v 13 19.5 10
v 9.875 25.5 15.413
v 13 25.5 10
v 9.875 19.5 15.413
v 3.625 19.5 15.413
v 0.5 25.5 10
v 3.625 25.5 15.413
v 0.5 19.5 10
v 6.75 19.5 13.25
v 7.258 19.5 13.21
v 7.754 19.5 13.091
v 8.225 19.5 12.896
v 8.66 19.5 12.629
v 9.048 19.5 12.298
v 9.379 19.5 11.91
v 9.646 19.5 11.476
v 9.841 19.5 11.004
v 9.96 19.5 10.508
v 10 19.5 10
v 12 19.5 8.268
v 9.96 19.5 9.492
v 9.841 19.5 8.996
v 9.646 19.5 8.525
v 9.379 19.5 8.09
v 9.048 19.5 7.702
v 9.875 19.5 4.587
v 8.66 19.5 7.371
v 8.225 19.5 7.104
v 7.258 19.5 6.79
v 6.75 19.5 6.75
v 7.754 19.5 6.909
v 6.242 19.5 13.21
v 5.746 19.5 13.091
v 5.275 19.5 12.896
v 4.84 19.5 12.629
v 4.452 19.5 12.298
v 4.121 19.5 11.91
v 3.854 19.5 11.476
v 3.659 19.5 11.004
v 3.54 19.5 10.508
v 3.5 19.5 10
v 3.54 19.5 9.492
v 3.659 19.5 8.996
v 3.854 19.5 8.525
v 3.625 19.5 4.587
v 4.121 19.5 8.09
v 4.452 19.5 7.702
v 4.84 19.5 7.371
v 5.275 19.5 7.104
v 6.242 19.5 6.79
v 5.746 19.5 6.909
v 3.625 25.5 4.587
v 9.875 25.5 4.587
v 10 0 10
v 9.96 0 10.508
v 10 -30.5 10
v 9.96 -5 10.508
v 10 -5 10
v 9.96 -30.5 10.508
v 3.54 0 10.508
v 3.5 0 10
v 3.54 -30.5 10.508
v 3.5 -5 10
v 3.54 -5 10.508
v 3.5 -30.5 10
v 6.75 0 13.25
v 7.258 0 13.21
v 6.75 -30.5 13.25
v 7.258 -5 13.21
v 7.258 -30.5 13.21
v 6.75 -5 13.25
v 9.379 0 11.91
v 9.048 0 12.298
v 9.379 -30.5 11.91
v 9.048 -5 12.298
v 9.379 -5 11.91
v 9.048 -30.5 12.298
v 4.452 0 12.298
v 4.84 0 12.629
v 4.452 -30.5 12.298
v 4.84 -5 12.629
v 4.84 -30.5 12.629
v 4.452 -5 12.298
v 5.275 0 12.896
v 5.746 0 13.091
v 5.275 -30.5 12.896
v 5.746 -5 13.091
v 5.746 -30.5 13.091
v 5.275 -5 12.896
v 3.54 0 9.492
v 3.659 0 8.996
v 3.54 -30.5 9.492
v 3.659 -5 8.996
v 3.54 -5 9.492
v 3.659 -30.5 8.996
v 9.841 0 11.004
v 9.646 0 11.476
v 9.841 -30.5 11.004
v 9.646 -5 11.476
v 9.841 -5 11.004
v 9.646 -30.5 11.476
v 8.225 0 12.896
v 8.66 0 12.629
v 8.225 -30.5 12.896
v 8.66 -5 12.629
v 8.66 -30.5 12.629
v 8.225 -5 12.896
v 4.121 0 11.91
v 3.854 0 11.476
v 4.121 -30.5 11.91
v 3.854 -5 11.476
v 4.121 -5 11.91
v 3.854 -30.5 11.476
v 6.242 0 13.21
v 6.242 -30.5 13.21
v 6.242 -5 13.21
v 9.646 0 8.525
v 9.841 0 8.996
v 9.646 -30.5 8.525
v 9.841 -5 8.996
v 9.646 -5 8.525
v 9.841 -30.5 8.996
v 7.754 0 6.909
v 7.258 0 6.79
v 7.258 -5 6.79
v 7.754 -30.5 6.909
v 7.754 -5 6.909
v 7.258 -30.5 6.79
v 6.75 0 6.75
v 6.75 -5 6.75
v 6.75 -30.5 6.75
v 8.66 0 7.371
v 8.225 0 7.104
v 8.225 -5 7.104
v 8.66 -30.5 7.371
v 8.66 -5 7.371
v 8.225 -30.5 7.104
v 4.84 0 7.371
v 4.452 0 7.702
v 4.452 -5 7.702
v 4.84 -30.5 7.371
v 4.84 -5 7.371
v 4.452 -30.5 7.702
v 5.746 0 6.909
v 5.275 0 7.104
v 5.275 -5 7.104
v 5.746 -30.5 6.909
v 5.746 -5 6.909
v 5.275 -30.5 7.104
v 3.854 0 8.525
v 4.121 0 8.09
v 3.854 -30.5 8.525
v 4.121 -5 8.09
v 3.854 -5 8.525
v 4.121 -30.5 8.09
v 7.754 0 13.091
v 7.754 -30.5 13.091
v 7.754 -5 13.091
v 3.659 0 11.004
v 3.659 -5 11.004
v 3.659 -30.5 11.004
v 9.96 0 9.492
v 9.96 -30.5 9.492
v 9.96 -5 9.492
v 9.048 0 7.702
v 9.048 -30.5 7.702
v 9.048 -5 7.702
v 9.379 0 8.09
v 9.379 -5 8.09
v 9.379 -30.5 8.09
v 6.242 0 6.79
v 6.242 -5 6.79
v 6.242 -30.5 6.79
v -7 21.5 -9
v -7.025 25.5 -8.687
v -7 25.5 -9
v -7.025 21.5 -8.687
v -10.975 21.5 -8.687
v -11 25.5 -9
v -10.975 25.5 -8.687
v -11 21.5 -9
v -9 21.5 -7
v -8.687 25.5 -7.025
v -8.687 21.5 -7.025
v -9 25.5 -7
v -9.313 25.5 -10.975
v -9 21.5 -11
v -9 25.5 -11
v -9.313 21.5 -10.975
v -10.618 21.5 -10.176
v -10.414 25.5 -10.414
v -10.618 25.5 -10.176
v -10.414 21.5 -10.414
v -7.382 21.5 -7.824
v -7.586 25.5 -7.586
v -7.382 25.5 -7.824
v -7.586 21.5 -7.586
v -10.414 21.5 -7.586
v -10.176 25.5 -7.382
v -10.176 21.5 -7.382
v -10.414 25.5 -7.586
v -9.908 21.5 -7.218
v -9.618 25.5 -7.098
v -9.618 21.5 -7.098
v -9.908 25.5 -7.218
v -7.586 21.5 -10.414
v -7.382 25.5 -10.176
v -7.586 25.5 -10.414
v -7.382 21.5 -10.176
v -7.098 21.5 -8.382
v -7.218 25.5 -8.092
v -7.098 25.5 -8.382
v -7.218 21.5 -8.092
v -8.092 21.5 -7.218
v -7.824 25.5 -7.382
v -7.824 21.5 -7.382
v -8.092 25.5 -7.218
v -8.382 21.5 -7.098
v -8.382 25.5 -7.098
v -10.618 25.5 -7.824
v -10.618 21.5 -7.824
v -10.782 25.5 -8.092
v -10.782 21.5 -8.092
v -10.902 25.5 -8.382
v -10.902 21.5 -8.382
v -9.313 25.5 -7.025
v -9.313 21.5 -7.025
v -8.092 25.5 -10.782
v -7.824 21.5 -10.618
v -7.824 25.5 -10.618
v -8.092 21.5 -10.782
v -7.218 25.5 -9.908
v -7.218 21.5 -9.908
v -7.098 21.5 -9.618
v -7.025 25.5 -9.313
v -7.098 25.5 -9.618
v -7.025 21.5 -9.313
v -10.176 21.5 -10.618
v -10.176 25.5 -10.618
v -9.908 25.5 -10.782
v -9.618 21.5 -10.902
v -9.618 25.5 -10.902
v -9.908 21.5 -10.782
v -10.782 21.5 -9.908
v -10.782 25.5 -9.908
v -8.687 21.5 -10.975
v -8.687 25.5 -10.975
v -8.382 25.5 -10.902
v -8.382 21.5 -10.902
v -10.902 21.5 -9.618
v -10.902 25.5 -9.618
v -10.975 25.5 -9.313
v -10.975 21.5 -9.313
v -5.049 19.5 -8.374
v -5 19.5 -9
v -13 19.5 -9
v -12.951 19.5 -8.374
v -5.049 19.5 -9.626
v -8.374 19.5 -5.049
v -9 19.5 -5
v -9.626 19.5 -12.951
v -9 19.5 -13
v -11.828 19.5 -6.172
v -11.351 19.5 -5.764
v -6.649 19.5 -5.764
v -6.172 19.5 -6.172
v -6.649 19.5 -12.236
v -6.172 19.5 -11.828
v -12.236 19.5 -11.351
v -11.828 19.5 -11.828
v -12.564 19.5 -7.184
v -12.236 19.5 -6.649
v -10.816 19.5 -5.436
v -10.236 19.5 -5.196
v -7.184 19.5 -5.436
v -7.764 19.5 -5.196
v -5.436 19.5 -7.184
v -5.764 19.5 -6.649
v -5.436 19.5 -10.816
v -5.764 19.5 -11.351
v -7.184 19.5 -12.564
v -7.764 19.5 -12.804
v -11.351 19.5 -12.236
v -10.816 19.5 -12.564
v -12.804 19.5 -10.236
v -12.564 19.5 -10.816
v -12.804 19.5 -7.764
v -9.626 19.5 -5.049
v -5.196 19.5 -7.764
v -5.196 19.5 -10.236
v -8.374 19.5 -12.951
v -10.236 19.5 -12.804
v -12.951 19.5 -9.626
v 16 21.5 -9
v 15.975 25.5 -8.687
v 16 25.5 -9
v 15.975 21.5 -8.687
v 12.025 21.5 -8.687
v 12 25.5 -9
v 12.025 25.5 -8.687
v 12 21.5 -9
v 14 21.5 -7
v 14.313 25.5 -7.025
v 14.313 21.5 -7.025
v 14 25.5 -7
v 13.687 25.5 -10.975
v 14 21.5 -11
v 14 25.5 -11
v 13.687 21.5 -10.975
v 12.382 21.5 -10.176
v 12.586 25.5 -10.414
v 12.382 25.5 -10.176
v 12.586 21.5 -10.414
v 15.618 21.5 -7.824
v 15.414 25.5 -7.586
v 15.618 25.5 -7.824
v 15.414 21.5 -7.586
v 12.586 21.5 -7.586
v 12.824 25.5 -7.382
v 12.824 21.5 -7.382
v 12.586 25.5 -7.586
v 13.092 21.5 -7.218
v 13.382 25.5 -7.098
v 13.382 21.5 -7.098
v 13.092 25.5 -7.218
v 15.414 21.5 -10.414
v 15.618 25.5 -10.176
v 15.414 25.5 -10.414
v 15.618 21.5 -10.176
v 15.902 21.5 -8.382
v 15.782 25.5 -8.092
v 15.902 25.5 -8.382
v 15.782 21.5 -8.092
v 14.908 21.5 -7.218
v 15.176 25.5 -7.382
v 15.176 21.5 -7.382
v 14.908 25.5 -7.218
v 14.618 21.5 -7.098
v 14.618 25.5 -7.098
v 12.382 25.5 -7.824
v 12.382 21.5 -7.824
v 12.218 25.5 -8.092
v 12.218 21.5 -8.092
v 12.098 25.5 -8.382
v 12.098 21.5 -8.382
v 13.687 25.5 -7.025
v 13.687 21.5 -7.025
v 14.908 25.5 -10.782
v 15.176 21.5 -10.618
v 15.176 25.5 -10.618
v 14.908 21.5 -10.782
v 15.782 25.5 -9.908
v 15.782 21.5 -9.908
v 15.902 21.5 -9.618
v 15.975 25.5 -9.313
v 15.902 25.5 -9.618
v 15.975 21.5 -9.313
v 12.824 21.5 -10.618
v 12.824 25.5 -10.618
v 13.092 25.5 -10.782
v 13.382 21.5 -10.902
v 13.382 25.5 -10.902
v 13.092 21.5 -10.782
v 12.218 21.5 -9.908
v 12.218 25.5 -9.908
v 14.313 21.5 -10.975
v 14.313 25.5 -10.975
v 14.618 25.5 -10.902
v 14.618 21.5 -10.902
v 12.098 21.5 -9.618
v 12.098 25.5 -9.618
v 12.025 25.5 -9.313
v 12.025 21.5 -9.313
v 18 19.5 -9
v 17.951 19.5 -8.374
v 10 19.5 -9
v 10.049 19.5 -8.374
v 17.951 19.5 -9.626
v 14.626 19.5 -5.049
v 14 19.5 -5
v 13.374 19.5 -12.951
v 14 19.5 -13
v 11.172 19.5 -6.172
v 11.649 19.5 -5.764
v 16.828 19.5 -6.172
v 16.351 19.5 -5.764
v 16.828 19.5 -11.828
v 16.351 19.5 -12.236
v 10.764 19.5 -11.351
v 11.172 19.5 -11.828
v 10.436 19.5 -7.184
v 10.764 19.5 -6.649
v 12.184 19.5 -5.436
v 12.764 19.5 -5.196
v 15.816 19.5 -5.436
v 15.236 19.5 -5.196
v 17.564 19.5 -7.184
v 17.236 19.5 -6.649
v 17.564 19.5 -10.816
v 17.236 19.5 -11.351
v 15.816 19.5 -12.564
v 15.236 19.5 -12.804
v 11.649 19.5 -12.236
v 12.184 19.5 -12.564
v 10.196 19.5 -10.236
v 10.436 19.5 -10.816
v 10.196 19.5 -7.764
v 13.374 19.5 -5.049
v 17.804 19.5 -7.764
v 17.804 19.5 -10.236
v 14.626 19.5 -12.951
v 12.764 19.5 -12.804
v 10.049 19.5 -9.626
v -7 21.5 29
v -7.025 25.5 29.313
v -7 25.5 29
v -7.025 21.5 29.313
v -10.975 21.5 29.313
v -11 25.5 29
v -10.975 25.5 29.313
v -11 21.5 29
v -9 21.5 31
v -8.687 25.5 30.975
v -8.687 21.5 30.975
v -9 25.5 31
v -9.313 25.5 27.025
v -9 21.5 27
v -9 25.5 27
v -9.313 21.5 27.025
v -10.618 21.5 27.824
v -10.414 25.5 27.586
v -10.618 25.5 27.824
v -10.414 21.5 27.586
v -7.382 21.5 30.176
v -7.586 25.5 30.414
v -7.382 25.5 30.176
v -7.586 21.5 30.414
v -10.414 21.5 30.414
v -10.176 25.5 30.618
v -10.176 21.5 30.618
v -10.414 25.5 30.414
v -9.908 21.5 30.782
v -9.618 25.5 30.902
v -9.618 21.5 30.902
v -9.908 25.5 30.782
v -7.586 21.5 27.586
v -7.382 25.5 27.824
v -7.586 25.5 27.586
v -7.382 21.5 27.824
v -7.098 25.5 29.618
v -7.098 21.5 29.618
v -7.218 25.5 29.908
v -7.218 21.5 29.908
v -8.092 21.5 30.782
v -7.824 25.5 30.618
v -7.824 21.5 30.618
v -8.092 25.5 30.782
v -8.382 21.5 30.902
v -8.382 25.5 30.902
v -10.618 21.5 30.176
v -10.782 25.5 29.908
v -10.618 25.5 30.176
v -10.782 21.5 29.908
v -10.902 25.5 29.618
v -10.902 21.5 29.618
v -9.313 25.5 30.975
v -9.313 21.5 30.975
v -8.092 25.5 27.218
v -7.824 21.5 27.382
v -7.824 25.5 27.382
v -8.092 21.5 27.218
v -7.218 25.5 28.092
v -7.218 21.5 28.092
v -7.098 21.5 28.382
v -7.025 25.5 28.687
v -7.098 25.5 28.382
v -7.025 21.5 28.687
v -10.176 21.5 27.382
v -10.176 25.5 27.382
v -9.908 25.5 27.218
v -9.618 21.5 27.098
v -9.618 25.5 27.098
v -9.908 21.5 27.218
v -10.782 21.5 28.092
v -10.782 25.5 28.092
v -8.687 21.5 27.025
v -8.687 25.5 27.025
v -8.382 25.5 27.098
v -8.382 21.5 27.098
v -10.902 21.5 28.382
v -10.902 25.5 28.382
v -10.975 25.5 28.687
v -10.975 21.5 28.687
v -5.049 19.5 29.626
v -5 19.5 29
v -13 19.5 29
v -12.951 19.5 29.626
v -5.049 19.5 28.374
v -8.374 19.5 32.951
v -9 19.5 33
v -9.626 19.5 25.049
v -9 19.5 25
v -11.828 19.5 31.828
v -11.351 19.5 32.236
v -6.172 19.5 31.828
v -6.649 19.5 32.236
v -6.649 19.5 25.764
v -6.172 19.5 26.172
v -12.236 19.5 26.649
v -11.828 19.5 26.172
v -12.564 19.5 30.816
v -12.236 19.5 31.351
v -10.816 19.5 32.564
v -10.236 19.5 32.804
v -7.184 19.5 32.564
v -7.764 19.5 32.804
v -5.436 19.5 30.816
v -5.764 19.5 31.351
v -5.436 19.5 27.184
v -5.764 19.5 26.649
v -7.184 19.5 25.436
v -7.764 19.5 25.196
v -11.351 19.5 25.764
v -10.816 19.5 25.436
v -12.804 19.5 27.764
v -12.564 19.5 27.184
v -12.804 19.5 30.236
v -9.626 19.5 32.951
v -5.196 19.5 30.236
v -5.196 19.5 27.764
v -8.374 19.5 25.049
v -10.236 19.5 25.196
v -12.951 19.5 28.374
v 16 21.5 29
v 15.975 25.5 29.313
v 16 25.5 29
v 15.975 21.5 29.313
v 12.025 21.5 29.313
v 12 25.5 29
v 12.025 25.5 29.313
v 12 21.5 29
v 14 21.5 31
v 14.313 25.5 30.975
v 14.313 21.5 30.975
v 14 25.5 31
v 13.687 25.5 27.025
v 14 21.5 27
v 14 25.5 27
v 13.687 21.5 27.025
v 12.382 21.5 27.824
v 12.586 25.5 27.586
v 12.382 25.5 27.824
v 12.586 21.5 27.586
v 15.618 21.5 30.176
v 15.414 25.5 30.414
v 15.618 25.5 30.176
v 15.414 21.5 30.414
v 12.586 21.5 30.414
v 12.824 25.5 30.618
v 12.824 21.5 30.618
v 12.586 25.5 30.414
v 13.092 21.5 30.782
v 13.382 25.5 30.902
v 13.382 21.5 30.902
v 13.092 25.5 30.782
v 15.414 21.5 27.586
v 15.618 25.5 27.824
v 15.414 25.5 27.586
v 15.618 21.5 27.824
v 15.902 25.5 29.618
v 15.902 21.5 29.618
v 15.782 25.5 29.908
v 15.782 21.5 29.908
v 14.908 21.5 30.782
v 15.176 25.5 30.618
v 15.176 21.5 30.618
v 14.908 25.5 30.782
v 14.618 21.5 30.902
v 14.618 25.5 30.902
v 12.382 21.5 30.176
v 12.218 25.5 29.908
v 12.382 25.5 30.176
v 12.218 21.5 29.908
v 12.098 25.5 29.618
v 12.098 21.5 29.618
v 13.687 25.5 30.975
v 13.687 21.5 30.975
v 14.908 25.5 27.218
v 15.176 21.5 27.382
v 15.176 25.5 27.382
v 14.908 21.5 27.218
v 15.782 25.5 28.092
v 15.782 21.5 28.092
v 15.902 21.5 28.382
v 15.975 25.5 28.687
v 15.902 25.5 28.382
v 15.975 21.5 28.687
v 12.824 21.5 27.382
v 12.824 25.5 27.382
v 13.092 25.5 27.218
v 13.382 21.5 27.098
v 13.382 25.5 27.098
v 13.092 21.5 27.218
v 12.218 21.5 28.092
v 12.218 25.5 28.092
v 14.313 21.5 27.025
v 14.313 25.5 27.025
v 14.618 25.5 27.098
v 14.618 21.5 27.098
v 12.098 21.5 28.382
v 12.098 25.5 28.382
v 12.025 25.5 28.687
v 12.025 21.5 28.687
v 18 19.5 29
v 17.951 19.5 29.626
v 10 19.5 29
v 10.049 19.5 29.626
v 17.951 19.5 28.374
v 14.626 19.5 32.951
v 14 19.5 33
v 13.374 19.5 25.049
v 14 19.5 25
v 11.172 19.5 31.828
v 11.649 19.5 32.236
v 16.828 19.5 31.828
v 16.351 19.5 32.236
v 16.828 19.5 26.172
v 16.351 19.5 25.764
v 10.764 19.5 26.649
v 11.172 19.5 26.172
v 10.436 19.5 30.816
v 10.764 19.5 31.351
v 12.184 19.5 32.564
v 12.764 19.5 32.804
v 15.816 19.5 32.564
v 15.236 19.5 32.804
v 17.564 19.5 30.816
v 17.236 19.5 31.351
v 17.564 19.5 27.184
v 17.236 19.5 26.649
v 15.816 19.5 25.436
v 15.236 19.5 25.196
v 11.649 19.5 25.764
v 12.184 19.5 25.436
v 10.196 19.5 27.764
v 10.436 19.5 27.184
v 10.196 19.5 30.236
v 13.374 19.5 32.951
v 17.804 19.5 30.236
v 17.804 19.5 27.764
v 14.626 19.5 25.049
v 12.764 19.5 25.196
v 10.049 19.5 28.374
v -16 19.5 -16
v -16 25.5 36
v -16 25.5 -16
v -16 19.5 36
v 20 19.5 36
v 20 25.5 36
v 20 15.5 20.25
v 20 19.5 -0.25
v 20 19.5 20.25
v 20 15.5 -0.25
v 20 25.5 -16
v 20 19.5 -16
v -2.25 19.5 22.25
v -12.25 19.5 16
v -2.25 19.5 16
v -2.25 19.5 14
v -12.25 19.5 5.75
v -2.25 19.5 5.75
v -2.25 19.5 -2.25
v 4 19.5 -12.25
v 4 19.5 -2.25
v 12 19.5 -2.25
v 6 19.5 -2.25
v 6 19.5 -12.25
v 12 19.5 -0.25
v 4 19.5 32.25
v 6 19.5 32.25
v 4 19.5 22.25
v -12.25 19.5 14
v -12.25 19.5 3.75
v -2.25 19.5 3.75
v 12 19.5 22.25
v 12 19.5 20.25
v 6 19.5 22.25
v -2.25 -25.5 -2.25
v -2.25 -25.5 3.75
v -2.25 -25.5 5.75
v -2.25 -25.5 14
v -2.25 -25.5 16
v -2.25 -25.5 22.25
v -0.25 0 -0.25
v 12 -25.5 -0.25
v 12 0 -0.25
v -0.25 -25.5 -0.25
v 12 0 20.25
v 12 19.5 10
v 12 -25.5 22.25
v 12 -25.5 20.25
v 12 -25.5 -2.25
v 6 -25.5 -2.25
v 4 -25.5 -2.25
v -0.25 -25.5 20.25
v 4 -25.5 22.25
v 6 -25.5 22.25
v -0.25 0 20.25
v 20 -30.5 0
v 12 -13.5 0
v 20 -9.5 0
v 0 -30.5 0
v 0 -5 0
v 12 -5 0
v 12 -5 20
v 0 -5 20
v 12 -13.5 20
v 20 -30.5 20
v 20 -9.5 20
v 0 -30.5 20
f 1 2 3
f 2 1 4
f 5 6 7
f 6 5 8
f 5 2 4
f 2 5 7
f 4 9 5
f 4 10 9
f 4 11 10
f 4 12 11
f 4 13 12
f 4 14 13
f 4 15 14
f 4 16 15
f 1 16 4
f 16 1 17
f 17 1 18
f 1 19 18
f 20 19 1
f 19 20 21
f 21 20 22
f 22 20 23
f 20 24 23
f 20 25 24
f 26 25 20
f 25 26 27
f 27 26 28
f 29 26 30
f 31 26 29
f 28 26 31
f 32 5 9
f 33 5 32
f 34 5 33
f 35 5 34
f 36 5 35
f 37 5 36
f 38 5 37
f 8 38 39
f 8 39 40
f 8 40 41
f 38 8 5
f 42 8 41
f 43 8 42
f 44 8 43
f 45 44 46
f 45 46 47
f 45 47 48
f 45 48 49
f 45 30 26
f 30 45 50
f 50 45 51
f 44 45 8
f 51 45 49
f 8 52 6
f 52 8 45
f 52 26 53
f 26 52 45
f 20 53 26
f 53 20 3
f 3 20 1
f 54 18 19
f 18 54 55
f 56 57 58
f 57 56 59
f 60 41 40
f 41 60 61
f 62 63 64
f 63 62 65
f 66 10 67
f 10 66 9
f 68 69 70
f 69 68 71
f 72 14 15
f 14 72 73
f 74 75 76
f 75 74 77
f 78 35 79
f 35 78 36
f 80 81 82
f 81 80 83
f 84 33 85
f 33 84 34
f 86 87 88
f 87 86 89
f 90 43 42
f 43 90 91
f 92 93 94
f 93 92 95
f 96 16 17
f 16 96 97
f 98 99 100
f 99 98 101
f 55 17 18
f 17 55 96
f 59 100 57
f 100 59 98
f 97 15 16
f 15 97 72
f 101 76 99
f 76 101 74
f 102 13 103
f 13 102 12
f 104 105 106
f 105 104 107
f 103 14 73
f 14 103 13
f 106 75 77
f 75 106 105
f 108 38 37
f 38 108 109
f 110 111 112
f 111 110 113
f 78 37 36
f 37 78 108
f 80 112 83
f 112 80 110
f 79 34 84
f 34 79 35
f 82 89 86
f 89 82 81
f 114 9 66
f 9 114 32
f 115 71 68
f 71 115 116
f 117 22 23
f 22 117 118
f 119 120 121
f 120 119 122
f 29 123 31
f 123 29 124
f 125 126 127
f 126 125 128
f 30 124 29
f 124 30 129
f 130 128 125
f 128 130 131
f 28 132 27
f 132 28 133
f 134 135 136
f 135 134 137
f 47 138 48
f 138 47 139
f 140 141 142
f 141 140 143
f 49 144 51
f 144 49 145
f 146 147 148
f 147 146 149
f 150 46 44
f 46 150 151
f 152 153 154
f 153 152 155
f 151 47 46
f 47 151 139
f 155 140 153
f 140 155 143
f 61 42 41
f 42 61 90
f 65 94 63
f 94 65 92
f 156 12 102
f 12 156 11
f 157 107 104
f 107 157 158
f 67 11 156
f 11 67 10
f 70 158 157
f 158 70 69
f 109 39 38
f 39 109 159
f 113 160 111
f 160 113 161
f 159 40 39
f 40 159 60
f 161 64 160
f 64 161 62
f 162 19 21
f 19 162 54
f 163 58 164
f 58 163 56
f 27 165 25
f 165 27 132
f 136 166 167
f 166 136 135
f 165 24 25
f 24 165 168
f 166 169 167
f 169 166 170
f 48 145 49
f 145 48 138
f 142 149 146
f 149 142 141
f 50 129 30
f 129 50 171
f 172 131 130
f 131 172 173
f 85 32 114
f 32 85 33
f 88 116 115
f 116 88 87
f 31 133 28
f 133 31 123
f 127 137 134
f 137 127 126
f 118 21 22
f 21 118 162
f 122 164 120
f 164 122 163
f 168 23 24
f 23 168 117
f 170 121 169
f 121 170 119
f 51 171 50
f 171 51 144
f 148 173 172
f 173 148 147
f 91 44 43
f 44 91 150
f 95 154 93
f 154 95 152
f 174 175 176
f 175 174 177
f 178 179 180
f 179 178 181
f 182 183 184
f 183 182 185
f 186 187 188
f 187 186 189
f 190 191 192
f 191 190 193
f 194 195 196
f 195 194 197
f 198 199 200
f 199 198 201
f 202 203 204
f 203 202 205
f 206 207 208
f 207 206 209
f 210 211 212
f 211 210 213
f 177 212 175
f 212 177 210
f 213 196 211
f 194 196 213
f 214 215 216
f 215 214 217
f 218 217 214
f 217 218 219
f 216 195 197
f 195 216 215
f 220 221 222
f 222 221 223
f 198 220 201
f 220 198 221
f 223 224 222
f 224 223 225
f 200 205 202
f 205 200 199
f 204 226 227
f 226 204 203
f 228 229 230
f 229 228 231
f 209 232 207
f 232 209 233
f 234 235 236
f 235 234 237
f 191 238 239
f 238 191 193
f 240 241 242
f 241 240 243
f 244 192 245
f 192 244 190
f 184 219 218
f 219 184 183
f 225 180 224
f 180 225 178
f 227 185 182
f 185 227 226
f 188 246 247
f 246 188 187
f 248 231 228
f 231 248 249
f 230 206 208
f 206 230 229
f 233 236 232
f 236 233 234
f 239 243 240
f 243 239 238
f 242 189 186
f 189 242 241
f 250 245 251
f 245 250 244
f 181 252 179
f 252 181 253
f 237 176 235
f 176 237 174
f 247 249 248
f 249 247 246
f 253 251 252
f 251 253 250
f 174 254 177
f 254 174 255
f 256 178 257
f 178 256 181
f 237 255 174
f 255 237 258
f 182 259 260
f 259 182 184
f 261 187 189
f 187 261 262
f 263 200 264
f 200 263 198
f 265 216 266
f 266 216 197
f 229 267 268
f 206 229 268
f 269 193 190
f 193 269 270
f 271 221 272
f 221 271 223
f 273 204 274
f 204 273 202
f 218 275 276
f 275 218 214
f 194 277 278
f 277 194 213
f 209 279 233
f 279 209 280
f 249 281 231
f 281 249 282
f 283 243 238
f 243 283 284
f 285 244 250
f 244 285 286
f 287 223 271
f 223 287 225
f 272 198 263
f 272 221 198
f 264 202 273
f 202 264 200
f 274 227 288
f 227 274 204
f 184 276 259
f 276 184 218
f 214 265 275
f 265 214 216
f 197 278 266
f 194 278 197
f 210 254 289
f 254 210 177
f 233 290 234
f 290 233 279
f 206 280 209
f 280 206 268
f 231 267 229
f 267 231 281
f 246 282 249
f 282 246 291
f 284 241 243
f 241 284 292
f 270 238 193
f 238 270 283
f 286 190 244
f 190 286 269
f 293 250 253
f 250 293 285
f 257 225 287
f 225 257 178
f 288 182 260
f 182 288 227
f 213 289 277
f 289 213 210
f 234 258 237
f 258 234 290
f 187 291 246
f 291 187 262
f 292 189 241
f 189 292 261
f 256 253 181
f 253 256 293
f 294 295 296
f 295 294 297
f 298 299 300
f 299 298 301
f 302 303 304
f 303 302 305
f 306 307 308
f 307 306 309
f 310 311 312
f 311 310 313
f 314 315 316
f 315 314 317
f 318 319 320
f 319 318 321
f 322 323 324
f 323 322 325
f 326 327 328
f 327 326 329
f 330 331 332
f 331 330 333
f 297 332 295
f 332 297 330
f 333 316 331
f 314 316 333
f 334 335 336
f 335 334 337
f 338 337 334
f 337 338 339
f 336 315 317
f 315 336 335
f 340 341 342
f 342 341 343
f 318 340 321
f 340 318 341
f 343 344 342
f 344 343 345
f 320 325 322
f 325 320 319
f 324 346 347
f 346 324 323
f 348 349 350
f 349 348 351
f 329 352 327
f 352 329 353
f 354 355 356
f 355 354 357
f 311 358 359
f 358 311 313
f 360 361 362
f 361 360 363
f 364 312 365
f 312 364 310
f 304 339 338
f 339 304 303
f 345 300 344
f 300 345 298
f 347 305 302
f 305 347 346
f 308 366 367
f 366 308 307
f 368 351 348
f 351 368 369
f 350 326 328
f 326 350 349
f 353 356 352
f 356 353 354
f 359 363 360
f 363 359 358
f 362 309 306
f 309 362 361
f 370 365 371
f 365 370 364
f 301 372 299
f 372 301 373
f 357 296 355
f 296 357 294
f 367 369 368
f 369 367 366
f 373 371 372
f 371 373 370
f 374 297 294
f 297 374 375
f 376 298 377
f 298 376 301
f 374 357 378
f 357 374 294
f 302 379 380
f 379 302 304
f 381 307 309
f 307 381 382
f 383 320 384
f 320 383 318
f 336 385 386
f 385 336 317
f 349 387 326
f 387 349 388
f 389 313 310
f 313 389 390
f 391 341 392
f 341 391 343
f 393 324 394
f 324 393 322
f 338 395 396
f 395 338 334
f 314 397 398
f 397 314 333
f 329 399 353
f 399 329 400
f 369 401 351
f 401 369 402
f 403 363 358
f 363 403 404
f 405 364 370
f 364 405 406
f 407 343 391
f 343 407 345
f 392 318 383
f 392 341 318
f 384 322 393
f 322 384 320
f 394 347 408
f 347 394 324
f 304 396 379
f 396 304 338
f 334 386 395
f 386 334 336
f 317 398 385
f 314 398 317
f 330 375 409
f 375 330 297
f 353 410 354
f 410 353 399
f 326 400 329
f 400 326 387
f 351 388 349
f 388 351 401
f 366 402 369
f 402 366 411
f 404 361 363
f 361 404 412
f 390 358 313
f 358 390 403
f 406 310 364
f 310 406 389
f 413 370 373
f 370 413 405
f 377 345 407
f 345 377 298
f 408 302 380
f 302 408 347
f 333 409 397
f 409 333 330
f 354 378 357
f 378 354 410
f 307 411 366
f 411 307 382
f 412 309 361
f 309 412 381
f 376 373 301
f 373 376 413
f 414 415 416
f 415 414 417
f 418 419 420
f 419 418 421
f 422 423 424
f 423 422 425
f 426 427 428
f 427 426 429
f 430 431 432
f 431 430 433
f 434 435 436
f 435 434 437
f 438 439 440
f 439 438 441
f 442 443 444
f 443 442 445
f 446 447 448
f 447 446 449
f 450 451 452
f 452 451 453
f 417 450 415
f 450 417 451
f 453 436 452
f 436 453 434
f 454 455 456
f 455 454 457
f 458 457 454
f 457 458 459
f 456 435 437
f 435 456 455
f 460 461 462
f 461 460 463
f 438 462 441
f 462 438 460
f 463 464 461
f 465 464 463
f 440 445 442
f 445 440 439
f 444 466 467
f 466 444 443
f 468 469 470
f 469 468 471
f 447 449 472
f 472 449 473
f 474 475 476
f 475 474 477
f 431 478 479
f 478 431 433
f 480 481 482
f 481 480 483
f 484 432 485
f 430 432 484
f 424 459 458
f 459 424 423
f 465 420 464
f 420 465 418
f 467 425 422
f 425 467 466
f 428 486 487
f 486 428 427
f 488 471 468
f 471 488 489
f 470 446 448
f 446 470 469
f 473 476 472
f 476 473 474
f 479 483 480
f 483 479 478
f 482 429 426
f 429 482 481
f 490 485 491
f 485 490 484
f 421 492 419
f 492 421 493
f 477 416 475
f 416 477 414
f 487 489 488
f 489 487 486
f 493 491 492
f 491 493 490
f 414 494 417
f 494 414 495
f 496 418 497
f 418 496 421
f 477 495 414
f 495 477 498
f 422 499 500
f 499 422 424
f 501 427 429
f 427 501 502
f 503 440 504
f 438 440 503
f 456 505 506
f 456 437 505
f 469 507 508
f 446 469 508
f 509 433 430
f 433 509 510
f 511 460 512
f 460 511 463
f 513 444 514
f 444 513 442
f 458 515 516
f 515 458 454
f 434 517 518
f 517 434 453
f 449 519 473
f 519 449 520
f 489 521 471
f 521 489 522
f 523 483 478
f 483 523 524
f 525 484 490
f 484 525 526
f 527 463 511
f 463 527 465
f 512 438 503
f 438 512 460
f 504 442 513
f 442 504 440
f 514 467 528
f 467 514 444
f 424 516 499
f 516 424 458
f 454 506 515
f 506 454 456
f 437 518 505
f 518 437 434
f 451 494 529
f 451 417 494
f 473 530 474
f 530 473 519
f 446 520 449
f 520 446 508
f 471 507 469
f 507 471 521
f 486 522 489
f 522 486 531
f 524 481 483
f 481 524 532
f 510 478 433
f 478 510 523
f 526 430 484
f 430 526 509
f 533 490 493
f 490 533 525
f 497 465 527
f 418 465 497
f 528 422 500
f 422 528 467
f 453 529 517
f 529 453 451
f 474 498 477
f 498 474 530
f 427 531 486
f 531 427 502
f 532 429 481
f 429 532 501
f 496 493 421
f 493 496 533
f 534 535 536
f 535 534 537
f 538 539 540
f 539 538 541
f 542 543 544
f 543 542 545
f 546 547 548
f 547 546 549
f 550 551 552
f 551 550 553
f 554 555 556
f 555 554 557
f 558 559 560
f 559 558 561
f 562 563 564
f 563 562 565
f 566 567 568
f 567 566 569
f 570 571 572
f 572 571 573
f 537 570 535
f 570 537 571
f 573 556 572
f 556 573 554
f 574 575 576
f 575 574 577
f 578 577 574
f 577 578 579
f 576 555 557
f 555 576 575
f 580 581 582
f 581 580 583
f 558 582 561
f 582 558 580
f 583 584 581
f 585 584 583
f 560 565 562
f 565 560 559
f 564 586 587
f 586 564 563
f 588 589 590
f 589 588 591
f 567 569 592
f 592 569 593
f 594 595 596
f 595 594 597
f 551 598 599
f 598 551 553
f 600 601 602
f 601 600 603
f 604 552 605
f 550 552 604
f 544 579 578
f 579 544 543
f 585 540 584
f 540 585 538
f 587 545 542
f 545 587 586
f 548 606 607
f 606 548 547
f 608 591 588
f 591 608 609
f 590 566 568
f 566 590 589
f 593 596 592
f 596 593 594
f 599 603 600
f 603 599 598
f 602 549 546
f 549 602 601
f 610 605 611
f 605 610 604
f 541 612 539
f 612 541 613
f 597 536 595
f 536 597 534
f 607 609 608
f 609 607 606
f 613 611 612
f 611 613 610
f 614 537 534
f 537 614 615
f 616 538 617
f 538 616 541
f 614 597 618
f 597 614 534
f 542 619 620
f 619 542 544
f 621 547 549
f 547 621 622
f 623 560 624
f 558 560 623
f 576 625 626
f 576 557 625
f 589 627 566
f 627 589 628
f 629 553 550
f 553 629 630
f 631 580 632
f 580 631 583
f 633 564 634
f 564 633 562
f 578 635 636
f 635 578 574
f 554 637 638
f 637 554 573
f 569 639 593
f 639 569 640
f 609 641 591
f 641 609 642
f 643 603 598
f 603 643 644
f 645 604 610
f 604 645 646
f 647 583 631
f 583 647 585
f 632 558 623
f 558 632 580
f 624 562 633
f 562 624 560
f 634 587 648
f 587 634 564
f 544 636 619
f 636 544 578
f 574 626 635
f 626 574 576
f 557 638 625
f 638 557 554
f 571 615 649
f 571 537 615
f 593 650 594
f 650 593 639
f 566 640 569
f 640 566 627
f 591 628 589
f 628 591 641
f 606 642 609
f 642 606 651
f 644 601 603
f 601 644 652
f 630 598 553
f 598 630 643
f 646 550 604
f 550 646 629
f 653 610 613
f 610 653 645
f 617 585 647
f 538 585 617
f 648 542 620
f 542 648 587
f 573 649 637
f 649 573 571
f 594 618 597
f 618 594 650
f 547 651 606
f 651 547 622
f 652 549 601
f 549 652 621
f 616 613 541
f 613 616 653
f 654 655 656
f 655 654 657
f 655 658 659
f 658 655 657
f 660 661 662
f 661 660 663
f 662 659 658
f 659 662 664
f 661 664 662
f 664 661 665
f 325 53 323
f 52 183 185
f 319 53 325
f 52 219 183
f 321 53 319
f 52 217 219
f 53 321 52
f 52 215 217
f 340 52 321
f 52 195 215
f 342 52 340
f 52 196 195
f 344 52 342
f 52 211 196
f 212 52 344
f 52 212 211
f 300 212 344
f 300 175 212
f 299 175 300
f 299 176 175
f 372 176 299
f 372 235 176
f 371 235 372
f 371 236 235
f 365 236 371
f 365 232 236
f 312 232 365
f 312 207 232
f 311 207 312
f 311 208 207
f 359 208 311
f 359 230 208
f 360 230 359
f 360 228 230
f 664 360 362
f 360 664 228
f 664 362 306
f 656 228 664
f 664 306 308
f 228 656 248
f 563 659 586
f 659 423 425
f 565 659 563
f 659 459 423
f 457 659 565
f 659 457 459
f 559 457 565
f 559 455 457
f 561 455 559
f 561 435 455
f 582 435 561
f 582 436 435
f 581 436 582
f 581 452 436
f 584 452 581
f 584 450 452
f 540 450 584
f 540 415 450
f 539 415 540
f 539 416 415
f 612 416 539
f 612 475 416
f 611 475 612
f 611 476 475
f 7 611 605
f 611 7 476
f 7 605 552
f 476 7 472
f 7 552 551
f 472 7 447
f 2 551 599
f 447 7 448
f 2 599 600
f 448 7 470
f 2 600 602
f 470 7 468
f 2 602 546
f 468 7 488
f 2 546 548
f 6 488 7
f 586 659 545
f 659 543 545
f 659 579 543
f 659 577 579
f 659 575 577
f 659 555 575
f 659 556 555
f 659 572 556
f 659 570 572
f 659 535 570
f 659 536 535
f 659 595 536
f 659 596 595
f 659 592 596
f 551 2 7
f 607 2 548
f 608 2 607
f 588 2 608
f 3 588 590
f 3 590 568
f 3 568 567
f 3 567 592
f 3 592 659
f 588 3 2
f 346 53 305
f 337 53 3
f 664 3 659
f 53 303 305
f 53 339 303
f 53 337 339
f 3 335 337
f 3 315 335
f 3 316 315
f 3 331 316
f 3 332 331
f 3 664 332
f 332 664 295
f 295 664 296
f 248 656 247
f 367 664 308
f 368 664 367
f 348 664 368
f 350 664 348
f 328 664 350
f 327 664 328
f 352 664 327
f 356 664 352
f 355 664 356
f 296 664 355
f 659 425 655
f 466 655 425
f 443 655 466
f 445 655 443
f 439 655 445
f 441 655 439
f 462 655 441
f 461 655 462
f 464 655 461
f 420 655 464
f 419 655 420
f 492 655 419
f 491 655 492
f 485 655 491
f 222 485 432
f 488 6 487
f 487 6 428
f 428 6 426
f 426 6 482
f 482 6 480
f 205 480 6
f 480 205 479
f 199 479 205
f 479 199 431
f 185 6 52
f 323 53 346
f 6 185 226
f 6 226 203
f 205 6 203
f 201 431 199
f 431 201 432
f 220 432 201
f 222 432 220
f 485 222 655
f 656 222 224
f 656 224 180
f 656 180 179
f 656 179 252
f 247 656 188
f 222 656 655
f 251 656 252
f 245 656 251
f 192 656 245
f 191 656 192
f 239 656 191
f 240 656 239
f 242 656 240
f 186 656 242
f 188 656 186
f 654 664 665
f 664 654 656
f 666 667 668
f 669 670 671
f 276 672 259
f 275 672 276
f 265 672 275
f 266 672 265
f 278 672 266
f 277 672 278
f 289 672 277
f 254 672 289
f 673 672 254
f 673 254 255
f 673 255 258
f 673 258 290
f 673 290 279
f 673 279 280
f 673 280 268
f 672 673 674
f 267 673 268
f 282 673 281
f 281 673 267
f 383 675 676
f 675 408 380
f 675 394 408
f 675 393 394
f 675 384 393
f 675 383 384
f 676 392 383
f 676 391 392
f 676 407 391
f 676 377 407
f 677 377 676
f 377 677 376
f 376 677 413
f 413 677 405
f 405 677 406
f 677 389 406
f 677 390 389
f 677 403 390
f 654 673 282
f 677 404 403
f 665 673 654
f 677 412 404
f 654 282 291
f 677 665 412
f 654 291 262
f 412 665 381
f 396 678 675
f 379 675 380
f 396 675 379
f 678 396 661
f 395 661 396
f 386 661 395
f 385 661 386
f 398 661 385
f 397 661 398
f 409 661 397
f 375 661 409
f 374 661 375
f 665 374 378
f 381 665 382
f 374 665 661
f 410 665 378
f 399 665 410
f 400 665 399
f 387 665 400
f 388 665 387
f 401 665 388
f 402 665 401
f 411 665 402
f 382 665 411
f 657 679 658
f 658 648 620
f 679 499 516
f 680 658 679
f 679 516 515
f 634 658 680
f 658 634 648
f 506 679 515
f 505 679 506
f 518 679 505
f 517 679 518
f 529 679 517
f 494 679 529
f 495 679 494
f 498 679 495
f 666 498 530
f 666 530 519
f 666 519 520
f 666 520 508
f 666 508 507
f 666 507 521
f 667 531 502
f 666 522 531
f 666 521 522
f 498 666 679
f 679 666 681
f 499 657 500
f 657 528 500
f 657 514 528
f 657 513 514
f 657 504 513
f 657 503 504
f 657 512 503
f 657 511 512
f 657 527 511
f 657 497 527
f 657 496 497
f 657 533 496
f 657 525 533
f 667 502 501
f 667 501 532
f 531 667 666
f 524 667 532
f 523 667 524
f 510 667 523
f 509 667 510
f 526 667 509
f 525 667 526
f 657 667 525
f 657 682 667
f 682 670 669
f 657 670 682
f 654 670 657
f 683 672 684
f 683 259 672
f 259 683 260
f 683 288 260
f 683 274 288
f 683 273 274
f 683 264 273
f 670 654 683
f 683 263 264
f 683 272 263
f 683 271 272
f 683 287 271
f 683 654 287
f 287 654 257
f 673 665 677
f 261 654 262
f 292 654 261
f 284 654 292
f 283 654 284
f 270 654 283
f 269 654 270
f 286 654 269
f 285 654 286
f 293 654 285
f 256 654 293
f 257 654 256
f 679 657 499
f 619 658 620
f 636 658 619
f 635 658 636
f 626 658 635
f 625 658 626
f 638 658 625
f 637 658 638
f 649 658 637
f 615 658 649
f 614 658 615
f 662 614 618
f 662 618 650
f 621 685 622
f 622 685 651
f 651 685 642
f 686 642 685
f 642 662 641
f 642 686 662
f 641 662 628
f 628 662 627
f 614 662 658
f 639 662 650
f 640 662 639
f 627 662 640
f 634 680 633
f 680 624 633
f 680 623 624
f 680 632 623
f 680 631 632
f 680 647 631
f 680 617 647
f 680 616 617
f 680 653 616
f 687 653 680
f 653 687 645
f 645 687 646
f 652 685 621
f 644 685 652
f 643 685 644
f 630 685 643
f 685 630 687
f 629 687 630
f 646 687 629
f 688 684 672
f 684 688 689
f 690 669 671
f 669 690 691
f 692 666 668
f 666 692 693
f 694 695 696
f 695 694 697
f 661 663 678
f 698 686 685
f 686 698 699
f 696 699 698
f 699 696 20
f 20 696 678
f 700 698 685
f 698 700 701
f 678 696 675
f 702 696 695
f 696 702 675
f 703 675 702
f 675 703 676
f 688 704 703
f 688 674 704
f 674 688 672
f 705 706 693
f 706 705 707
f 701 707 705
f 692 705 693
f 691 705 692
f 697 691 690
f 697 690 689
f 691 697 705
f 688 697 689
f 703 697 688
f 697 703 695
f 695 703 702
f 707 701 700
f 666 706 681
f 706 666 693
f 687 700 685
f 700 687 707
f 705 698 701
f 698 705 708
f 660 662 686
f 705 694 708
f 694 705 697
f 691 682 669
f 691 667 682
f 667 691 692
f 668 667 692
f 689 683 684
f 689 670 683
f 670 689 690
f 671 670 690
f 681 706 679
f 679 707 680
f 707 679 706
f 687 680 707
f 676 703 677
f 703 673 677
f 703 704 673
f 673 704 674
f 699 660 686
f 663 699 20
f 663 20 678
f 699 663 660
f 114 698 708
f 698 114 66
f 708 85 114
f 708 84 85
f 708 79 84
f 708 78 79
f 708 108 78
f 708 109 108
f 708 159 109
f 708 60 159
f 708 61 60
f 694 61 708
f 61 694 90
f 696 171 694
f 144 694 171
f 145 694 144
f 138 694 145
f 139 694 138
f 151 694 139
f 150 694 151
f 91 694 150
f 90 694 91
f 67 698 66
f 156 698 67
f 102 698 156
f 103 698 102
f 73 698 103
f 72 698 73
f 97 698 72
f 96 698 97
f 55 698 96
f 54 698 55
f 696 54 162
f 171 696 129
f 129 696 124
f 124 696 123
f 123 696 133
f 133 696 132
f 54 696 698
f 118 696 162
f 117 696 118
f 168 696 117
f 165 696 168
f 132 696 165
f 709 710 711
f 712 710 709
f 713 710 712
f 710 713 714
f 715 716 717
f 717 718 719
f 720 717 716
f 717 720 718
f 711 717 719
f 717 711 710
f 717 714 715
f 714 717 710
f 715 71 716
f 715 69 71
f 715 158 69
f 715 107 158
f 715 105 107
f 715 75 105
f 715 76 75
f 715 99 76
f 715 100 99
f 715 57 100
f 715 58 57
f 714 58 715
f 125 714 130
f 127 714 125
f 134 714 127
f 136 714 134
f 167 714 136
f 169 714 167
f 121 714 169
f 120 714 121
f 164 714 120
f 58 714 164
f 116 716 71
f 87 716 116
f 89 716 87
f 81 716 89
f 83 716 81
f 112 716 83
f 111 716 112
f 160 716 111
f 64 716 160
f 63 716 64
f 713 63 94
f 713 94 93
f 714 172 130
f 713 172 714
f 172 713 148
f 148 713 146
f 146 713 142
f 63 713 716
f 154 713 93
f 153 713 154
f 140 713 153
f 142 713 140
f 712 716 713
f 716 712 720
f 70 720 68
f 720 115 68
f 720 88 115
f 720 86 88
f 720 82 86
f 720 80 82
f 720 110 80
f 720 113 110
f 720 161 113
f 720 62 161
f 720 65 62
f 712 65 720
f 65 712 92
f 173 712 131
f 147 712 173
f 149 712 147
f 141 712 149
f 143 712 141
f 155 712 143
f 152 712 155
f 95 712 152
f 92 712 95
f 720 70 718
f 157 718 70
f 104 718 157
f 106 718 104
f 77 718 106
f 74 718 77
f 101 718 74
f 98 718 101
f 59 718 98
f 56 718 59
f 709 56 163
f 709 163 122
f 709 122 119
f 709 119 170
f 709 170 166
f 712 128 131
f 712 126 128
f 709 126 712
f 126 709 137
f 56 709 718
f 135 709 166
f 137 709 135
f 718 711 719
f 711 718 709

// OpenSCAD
// --- Params -------------------------------------

td = 6.5;  // screw thread diameter
sl = 60;   // length of screw (without head)
sh = 6;    // height of screw head
shd = 12.5;   // screw head diameter

nt = 10;   // "travel length" for wingnut on thread

hw = 20;   // hook width (of lower part)
hd = 8;    // hook depth

bd = 20;   // depth of upper and lower blocks (without fixing plate)

po = 10;   // upper fixing plate overhang
pd = 4.2;  // upper fixing plate mounting holes diameter

g = 5;     // gap between upper and lower hook

pt = 6;    // thickness of fixing plate
wt = 2;    // thickness of "guiding walls"
wp = 0.25; // "play" for guiding wall

ha = 30;   // hook angle (in degrees)

uhd = 6;  // upper hook distance (distance from upper plate to hook's inner corner)

ch = 28;   // hook clamping height  

fsd = 4;   // fixing screws diameter

// --- Derived params -----------------------------

stl = sl + sh;    // screw total length

th = stl - nt;    // total height for lower and upper part + gap

lh = (th - g) / 2;  // height of lower part
uh = lh;          // height of upper part

lhd = th - g - ch - uhd;  // lower hook distance (height from block bottom to hook's inner corner)

hh = hd * sin(ha);  // height of hook

// ------------------------------------------------

$fn=40;

// ------------------------------------------------


module bottom_profile() {
    polygon ([  [ 0, 0 ] ,
                [ bd, 0 ] ,
                [ bd, lhd+hh ] ,
                [ bd-hd, lhd ] ,
                [ bd-hd, lh] ,
                [ 0, lh] 
            ]);
}

module top_profile() {
    polygon ([  [ 0, 0 ] ,
                [ bd-hd+wp, 0 ] ,
                [ bd-hd+wp, uh-uhd ],
                [ bd+wp, uh-uhd-hh ],
                [ bd+wp, uh ],
                [ 0, uh ] 
            ]);
}

module tapered_screw_hole (dia,headDia,depth) {
    union() {
    translate ([0,0,-depth])
        cylinder (d=dia, h=depth);
    translate ([0,0,-headDia/2])
        cylinder (d2=headDia, d1=0, h=headDia/2);
    cylinder(d=headDia, h=depth/2);
    }
}

module fixing_plate() {
    
    difference(){
    // plate
    translate([-po-pt,uh-pt,-po-pt])
    cube([bd+po+pt,pt,hw+2*pt+2*po]);
    
    // mounting screw holes
    translate ([-fsd-pt/2-wt,uh-pt,-fsd-pt/2-wt]) rotate([90,0,0]) tapered_screw_hole(fsd,fsd*2,2*pt);
    translate ([bd-po+fsd,uh-pt,-fsd-pt/2-wt]) rotate([90,0,0]) tapered_screw_hole(fsd,fsd*2,2*pt);        
    translate ([-fsd-pt/2-wt,uh-pt,hw+fsd+wt+pt/2]) rotate([90,0,0]) tapered_screw_hole(fsd,fsd*2,2*pt);        
    translate ([bd-po+fsd,uh-pt,hw+fsd+wt+pt/2]) rotate([90,0,0]) tapered_screw_hole(fsd,fsd*2,2*pt);    
    }
}

module guiding_walls() {
        union() {
        translate([-wt-wp,-lh,-wt-wp]) cube([bd-hd+wt+wp,th-pt-g,wt]);
        translate([-wt-wp,-lh, hw+wp]) cube([bd-hd+wt+wp,th-pt-g,wt]);
        translate([-wt-wp,-lh, -wp]) cube([wt,th-pt-g,hw+2*wp]);
        translate([0,uh-pt,hw-(bd-hd)/2])
            linear_extrude(height=wt) polygon([ [-wt-wp,0], [-wt-wp-po,0], [-wt-wp,-(th-pt-g)] ]);
        translate([0,uh-pt,(bd-hd)/2-wt-wp])
            linear_extrude(height=wt) polygon([ [-wt-wp,0], [-wt-wp-po,0], [-wt-wp,-(th-pt-g)] ]);            
        translate([(bd-hd)/2-wt,uh-pt,hw])
            rotate([0,90,0])
            linear_extrude(height=wt) polygon([ [-wt-wp,0], [-wt-wp-po,0], [-wt-wp,-(th-pt-g)] ]);
        translate([(bd-hd)/2,uh-pt,0])
            rotate([0,-90,0])
            linear_extrude(height=wt) polygon([ [-wt-wp,0], [-wt-wp-po,0], [-wt-wp,-(th-pt-g)] ]);
        }
}

module tightening_bolt() {
    translate([bd-hd-td/2-2,uh+1,hw/2])
    rotate([90,0,0])
    union() {
    cylinder (d=shd, h=sh+1, $fn=6);
    cylinder (d=td, h=stl+1);
    }
}

// ------------------------------------------------

difference() {

translate([0,-lh-g,0])
linear_extrude (height=hw)
bottom_profile();

tightening_bolt();
}    


/*
translate([0,20,lh])
rotate([-90,0,0])
*/
difference() {
    union(){
    translate([-wp,0,-wp])
    linear_extrude (height=hw+2*wp)
    top_profile();

    fixing_plate();
    guiding_walls();
    }
    
    tightening_bolt();
}
